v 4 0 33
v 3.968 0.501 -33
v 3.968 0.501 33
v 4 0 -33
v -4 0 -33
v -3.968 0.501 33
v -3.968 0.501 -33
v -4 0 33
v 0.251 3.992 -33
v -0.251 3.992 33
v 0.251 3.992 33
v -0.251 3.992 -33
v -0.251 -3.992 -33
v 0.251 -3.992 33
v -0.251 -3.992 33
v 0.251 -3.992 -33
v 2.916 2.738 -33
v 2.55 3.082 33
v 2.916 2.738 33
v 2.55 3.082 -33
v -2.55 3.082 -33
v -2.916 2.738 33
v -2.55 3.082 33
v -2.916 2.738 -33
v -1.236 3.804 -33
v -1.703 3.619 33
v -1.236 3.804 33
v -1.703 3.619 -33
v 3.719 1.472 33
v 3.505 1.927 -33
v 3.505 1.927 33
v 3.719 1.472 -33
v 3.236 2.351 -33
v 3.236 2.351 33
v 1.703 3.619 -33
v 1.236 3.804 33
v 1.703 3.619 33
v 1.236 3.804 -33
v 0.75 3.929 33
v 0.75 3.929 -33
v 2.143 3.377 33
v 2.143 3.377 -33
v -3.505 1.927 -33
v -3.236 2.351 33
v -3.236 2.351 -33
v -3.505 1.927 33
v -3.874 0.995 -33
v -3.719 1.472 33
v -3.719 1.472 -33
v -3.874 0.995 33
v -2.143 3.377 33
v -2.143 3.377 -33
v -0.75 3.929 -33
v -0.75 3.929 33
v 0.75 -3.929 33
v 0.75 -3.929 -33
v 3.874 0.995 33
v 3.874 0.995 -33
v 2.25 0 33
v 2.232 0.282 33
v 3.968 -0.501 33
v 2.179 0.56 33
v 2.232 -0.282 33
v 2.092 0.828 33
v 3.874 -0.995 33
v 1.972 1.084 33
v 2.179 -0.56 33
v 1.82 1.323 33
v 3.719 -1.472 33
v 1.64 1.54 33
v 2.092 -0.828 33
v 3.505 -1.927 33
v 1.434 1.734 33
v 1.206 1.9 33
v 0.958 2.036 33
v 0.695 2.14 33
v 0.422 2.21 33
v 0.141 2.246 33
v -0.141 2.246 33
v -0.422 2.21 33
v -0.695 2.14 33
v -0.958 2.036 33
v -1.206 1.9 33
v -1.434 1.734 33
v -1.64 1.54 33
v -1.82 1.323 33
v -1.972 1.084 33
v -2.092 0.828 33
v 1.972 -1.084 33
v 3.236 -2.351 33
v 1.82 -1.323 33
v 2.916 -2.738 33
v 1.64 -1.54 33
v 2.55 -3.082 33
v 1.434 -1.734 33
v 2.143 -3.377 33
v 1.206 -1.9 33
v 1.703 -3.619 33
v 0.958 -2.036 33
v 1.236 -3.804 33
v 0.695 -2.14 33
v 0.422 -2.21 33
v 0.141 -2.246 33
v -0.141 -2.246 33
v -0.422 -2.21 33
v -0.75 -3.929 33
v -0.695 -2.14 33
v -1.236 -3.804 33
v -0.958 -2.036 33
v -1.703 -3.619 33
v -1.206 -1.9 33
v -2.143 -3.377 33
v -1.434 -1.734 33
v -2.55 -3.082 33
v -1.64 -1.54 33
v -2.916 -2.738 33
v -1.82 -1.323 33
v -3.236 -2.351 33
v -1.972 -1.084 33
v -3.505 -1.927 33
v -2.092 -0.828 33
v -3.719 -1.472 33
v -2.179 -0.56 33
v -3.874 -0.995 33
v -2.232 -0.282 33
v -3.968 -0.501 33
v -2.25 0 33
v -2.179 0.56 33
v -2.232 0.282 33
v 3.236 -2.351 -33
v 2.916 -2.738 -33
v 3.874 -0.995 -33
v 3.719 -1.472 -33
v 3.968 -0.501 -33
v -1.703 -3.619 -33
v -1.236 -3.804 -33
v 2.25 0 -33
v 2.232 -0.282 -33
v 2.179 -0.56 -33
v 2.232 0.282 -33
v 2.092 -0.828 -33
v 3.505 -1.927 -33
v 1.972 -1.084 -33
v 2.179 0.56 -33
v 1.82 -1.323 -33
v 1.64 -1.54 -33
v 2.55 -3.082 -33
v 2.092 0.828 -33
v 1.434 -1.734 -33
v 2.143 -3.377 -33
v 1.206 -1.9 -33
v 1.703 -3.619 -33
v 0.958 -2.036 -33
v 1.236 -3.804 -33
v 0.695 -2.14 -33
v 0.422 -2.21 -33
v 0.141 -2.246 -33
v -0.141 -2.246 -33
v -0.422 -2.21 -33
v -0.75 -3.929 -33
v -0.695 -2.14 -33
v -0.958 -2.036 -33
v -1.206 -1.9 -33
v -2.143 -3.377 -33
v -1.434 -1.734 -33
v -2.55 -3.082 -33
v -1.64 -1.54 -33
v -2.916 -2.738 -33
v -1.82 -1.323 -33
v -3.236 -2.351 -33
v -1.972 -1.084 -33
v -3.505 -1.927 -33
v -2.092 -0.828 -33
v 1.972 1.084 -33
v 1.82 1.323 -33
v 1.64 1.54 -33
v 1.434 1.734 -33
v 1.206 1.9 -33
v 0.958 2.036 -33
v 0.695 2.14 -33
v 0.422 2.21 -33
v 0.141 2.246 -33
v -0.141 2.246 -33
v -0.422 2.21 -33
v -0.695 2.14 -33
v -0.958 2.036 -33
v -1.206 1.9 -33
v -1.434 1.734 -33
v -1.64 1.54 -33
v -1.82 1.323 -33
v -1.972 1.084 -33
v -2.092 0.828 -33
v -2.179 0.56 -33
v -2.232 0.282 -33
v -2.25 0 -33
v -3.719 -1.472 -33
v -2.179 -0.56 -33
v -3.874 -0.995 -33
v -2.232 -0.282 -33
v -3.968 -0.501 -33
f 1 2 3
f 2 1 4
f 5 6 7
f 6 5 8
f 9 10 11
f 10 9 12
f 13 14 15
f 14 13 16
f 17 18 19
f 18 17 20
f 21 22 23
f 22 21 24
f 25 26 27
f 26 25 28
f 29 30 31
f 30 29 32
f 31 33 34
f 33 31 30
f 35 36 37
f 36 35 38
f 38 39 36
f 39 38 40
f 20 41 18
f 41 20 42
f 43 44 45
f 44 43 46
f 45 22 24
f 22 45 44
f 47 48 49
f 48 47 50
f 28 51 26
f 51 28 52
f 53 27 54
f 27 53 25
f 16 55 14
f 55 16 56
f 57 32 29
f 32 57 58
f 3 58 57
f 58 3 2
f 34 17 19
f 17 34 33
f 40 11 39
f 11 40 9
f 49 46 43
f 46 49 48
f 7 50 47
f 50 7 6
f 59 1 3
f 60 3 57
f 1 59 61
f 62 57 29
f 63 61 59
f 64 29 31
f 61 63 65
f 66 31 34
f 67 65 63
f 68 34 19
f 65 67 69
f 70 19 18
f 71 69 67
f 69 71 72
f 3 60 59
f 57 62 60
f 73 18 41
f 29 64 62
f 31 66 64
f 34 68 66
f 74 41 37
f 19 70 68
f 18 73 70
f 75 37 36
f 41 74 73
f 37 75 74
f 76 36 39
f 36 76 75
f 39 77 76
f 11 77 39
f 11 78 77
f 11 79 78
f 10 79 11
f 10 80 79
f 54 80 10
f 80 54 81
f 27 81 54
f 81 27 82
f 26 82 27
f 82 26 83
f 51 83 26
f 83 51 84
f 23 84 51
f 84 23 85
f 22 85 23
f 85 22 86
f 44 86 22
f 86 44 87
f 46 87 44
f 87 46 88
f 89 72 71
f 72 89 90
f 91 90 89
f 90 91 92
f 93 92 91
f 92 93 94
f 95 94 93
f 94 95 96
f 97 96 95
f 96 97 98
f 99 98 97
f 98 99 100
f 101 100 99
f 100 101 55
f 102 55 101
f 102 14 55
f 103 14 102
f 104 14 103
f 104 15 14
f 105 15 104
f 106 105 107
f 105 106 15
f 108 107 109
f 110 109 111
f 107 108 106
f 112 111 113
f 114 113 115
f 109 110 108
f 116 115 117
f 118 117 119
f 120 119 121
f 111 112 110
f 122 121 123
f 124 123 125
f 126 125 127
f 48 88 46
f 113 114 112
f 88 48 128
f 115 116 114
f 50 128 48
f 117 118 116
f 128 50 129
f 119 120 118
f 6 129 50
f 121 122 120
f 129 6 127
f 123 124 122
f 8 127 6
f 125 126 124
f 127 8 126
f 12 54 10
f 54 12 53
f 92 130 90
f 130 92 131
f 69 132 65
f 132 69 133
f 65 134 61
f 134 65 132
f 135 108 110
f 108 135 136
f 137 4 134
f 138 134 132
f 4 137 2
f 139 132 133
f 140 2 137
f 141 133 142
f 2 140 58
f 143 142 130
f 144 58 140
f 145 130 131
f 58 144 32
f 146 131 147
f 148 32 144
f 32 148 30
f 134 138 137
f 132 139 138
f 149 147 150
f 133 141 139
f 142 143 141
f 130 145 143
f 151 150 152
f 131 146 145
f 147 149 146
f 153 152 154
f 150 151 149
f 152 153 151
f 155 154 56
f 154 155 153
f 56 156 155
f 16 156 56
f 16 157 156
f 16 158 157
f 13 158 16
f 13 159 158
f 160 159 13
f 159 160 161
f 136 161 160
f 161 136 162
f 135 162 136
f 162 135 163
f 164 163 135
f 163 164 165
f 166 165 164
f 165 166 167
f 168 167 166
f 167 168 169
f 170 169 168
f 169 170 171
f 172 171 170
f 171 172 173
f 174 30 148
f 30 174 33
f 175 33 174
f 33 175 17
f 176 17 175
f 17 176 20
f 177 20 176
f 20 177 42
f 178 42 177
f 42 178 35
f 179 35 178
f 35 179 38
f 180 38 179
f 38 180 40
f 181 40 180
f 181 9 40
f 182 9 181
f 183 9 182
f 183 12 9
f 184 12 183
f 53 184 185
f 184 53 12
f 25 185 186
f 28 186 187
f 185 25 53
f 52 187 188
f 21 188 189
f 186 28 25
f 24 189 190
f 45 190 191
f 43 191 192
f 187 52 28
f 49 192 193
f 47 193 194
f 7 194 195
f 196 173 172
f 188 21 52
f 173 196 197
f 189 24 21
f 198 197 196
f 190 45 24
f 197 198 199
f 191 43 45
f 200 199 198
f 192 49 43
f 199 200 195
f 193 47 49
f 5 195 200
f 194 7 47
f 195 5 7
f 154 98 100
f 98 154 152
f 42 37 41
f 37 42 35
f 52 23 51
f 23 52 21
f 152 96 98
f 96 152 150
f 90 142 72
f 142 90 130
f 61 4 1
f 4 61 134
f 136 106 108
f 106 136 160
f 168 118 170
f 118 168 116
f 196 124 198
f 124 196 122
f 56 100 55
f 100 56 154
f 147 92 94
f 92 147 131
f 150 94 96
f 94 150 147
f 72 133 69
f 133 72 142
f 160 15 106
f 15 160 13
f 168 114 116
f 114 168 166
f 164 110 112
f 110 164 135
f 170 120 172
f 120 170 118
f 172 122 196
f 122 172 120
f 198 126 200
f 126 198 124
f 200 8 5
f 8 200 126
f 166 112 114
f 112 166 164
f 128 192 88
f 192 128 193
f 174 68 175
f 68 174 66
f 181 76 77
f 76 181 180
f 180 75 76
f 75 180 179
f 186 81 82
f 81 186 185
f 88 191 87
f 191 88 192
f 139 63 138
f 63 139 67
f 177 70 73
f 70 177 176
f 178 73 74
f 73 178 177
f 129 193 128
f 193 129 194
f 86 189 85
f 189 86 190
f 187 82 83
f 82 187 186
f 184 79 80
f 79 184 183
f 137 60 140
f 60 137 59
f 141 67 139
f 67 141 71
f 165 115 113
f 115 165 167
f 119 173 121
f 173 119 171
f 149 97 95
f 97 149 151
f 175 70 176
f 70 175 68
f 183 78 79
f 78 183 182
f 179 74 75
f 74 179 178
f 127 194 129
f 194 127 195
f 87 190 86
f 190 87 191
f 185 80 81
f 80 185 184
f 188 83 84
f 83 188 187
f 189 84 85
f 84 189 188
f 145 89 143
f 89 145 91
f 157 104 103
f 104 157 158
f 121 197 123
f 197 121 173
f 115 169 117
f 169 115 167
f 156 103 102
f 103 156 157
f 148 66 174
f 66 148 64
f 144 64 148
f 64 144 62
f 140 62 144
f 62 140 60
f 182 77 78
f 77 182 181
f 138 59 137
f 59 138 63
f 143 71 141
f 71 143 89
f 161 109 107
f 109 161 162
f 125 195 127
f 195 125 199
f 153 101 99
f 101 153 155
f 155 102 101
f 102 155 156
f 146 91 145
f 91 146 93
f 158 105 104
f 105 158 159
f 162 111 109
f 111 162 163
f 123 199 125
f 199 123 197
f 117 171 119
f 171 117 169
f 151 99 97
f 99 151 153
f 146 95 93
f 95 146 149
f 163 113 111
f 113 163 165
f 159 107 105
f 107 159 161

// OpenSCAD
$fn = 50;


difference() {
	union() {
		translate(v = [0, 0, -33.0000000000]) {
			cylinder(h = 66, r = 4.0000000000);
		}
	}
	union() {
		translate(v = [0, 0, -100.0000000000]) {
			cylinder(h = 200, r = 2.2500000000);
		}
	}
}
